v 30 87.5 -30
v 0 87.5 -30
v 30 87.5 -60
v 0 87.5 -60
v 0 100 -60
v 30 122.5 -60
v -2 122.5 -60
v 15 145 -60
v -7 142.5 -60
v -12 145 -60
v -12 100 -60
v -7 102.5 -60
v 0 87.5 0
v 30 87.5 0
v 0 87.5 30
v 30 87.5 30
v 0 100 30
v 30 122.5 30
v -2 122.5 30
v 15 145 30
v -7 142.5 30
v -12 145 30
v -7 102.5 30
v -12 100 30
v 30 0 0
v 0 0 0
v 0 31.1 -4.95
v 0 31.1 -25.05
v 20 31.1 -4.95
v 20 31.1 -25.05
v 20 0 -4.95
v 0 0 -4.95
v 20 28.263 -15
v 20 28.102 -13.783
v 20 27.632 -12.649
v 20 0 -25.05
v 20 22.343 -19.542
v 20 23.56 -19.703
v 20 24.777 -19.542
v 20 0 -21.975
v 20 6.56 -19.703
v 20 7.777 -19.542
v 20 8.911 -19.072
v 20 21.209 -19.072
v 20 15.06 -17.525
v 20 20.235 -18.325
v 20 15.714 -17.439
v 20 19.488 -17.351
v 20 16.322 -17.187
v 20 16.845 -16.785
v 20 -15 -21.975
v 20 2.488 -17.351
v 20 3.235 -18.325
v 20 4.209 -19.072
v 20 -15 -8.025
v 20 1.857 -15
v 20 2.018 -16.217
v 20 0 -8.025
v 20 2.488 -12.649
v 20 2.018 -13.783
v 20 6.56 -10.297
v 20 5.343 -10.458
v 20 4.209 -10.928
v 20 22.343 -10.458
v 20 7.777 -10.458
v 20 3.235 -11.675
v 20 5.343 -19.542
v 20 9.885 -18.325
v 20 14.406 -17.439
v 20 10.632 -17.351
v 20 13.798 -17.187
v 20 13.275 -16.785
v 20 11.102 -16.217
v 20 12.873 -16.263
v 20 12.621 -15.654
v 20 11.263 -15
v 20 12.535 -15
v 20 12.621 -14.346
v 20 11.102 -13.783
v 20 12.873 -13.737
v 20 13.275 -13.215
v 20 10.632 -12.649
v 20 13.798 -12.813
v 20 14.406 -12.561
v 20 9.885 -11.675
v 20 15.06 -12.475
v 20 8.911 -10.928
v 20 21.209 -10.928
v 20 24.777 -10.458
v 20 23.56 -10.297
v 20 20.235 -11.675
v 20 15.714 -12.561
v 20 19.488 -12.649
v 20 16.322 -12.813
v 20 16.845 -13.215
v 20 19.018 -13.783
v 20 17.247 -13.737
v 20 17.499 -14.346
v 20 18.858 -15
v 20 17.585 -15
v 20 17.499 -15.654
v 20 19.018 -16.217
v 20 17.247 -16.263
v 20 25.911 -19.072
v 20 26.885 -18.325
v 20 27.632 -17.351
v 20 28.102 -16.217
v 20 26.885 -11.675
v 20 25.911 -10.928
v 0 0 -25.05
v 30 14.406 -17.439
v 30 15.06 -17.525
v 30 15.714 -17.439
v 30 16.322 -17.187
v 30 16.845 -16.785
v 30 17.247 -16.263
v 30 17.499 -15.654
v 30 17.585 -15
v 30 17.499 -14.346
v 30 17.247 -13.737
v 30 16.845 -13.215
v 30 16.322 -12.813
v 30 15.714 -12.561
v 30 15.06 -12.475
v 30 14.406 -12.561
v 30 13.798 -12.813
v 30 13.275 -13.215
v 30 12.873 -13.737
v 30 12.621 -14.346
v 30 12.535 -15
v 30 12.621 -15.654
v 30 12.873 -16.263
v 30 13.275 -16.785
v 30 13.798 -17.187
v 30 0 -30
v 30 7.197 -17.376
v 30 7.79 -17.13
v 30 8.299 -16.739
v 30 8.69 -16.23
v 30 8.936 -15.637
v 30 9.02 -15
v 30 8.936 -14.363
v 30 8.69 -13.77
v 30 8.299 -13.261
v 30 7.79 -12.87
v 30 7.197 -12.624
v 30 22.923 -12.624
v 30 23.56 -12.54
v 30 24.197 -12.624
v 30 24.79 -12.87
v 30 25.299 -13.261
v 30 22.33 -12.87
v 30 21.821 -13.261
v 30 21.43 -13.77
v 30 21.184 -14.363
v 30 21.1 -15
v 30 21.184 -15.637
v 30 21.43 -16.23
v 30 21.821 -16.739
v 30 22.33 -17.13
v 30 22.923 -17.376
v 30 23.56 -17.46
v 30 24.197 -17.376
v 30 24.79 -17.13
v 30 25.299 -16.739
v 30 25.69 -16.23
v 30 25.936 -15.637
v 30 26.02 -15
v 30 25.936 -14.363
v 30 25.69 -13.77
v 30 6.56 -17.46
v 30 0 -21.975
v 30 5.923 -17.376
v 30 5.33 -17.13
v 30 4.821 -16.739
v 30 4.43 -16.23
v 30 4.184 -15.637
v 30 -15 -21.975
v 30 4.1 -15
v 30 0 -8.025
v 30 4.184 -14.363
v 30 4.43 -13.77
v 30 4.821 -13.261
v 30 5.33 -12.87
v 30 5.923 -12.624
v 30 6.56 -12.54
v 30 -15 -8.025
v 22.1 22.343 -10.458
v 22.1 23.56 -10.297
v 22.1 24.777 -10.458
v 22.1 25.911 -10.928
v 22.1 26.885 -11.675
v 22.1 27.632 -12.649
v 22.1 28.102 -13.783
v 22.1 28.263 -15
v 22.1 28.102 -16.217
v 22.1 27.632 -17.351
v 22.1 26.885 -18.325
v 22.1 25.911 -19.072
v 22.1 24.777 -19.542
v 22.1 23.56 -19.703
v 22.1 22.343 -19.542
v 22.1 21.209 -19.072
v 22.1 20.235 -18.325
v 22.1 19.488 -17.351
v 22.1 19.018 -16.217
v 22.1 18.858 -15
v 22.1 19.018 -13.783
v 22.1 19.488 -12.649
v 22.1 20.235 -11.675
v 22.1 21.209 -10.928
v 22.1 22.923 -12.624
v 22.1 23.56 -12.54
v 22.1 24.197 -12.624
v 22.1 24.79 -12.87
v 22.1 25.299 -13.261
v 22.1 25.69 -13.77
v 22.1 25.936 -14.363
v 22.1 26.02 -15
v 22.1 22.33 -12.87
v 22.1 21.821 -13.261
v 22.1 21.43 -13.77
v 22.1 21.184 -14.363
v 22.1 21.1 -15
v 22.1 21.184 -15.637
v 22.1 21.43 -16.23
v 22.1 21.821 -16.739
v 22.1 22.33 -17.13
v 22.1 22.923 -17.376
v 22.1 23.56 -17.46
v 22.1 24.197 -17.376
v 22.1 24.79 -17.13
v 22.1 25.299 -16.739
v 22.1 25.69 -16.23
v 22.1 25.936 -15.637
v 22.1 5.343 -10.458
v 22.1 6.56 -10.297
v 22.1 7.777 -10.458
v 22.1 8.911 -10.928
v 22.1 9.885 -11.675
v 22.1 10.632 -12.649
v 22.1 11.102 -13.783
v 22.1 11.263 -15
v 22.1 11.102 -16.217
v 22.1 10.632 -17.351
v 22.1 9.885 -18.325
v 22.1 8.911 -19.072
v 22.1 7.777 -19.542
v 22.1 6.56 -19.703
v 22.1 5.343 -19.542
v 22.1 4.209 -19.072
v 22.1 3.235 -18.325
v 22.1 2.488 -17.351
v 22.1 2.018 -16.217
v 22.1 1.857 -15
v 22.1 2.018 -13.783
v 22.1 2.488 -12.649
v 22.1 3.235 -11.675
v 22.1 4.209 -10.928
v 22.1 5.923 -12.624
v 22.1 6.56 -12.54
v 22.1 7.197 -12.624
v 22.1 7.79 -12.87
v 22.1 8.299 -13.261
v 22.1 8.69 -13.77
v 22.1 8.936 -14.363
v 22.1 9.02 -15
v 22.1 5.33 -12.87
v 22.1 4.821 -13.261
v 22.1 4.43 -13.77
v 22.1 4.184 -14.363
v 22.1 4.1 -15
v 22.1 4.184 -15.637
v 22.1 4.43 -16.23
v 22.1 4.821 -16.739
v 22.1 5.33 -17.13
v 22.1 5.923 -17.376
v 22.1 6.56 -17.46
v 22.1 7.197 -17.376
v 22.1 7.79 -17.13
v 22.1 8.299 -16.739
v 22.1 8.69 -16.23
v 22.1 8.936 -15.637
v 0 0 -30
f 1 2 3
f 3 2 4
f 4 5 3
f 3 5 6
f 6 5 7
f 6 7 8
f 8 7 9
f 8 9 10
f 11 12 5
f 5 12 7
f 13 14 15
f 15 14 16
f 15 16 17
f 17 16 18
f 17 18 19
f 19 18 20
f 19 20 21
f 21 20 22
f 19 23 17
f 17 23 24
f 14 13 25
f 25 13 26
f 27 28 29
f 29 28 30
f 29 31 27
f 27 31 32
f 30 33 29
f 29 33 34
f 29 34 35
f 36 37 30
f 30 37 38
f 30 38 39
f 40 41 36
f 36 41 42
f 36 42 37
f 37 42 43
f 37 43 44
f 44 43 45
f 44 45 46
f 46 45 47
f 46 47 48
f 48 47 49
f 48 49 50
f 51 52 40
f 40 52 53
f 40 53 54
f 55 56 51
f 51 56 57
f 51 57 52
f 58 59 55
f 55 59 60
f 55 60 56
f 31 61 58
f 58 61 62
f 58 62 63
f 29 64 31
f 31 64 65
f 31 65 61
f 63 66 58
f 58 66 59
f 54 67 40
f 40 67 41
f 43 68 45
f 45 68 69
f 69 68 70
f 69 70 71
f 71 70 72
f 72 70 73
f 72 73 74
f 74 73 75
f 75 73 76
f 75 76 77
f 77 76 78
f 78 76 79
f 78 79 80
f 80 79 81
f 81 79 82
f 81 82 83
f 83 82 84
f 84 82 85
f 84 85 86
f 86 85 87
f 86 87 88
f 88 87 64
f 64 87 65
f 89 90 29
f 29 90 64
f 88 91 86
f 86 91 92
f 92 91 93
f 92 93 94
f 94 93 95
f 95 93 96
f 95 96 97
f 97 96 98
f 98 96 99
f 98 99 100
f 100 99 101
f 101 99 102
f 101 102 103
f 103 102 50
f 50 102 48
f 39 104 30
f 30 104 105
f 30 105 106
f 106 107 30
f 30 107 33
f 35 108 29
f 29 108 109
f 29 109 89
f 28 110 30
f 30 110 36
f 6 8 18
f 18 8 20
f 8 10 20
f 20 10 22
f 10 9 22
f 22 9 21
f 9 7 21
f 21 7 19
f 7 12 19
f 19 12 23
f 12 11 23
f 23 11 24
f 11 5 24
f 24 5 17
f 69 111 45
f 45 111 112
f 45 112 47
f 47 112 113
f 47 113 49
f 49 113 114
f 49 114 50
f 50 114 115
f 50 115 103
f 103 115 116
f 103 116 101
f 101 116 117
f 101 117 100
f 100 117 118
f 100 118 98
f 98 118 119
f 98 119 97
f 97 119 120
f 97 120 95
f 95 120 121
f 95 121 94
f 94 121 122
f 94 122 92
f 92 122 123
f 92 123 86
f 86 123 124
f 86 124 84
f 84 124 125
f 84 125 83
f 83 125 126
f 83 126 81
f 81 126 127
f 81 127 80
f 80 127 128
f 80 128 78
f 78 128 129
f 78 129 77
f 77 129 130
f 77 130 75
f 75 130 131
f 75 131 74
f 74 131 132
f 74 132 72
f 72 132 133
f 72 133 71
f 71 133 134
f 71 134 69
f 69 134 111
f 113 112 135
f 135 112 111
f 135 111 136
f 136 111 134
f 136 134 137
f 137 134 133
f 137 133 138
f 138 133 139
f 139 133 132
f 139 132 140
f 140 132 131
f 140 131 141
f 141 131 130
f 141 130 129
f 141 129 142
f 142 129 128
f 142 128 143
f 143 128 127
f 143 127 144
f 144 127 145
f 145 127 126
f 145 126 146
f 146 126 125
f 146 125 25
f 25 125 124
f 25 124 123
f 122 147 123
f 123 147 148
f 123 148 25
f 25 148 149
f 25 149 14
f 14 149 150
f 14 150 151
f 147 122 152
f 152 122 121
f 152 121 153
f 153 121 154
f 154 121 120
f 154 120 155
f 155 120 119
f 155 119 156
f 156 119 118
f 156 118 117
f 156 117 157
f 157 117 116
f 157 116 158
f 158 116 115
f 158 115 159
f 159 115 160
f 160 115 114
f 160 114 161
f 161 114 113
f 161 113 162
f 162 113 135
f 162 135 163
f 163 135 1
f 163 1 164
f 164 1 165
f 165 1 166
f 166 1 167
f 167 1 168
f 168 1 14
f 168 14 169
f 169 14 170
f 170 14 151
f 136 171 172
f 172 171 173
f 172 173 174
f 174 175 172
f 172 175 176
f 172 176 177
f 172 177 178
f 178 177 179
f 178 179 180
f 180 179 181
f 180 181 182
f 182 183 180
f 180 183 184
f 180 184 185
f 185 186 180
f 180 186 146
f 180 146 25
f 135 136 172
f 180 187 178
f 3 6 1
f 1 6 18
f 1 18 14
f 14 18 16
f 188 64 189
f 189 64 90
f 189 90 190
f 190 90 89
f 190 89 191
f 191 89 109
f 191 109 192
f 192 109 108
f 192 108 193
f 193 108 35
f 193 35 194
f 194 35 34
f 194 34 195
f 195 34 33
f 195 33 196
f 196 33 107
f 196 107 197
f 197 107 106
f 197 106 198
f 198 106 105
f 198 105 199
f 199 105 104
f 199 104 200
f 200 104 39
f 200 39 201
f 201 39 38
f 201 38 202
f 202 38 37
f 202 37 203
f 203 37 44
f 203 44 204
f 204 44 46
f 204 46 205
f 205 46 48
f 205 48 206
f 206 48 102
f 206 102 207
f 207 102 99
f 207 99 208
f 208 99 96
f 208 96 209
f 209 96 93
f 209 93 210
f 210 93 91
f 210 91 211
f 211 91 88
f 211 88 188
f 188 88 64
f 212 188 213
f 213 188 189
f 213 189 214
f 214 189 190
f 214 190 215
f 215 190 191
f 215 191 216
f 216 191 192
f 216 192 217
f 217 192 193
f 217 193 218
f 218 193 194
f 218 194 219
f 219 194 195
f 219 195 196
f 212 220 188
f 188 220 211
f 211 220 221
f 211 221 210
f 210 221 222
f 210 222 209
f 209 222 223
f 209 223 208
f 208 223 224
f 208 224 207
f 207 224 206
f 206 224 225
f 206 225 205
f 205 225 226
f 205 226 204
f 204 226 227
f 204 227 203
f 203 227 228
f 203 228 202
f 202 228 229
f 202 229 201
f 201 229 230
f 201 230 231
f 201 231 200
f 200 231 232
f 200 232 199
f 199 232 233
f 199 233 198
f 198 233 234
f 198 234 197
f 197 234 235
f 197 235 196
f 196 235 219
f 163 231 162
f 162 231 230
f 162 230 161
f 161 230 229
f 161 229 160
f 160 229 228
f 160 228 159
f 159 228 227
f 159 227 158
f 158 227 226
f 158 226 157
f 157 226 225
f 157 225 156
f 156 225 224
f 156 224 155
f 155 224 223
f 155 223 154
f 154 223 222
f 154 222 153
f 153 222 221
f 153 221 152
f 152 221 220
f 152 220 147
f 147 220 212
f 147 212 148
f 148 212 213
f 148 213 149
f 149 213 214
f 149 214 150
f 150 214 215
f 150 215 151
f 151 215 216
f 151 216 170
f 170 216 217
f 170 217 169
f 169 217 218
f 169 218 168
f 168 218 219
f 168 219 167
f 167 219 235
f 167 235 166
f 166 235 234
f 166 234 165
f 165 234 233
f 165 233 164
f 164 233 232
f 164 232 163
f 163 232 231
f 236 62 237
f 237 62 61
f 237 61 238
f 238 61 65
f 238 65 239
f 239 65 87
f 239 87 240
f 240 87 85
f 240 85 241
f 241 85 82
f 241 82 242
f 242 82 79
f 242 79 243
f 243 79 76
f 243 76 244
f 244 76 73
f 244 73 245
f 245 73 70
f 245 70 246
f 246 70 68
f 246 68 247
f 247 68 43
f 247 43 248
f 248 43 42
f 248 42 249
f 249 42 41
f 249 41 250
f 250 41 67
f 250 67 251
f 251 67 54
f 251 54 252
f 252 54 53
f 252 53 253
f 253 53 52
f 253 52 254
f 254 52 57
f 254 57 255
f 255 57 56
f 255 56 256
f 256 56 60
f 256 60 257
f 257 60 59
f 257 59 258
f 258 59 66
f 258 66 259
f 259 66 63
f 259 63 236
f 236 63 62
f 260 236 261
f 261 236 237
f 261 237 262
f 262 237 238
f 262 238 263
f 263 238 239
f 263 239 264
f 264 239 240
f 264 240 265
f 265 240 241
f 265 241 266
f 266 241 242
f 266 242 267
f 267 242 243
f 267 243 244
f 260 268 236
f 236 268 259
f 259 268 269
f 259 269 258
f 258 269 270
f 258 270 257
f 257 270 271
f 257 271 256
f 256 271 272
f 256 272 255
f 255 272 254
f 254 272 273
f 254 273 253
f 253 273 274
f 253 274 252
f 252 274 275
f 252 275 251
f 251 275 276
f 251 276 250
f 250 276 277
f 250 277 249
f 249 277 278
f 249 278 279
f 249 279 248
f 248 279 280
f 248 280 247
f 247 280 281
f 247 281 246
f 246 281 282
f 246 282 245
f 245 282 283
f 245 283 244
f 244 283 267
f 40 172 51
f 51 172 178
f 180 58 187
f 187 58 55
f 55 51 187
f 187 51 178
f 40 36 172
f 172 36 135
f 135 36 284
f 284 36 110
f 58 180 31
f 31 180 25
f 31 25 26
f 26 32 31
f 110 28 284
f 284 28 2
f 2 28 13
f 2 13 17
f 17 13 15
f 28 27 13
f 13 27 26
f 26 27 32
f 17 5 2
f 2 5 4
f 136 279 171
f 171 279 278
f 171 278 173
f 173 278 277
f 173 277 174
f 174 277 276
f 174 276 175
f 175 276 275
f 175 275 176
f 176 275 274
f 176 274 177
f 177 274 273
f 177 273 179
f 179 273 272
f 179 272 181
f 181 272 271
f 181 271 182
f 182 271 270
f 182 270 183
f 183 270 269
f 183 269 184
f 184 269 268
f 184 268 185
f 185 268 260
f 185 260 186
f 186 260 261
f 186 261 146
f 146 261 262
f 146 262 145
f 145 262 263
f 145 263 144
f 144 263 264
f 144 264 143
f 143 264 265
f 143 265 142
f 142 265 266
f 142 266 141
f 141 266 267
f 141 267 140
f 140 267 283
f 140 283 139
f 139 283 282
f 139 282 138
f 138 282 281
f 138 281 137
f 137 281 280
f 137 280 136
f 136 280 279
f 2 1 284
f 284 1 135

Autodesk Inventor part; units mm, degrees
ref_plane "YZ Plane" through (0, 0, 0) normal (1, 0, 0) x (0, 1, 0)
ref_plane "XZ Plane" through (0, 0, 0) normal (0, 1, 0) x (-1, 0, 0)
sketch "Sketch1" plane through (0, 0, 0) normal (0, 0, 1) x (1, 0, 0)
  line L0 (0, 0) -> (25, 0)
  line L1 (25, 0) -> (25, 40)
  line L2 (25, 40) -> (0, 40)
  line L3 (0, 40) -> (0, 0)
  dimension "d1" = 25
  dimension "d2" = 40
  dimension "d3" = 25
extrude "Extrusion1" add sketch "Sketch1" against normal blind 30
sketch "Sketch2" plane through (25, 0, 0) normal (1, 0, 0) x (0, 0, -1)
  line L0 (0, 0) -> (30, 0) projected
  circle A0 centre (15, 6.56) radius 2.46
extrude "Extrusion2" cut sketch "Sketch2" against normal blind 30
sketch "Sketch3" plane through (0, 0, 0) normal (-1, 0, 0) x (0, 0, 1)
  line L0 (0, 0) -> (-30, 0) projected
  line L1 (-25.05, 0) -> (-4.95, 0)
  line L2 (-4.95, 0) -> (-4.95, 33.12)
  line L3 (-4.95, 33.12) -> (-25.05, 33.12)
  line L4 (-25.05, 33.12) -> (-25.05, 0)
  dimension "d11" = 20.1
extrude "Extrusion3" cut sketch "Sketch3" against normal blind 20
sketch "Sketch4" plane through (0, 0, 0) normal (0, -1, 0) x (1, 0, 0)
  line L0 (20, -4.95) -> (20, -25.05) projected
  line L1 (20, -15) -> (25, -15)
  line L2 (25, 0) -> (25, -30) projected
  line L3 (20, -8.025) -> (25, -8.025)
  line L4 (25, -8.025) -> (25, -21.975)
  line L5 (25, -21.975) -> (20, -21.975)
  line L6 (20, -21.975) -> (20, -8.025)
  line L7 (20, -8.025) -> (25, -21.975) construction
  line L8 (25, -8.025) -> (20, -21.975) construction
  line L9 (25, -12.54) -> (25, -17.46) projected
  point P0 (0, 0)
  point P1 (22.5, -15)
  dimension "d14" = 13.95
extrude "Extrusion4" add sketch "Sketch4" along normal blind 15
sketch "Sketch5" plane through (20, 0, 0) normal (-1, 0, 0) x (0, 0, 1)
  circle A0 centre (-15, 6.56) radius 2.46 projected
  circle A1 centre (-15, 6.56) radius 4.7025
  circle A2 centre (-15, 6.56) radius 2.46 projected
  circle A3 centre (-15, 6.56) radius 2.46
  point P0 (0, 0)
  dimension "d17" = 9.405
extrude "Extrusion5" cut sketch "Sketch5" against normal blind 2.1
sketch "Sketch6" plane through (25, 0, 0) normal (1, 0, 0) x (0, 0, -1)
  circle A0 centre (15, 6.56) radius 4.7025 projected
  line L0 (15, 6.56) -> (15, 23.56)
  circle A1 centre (15, 23.56) radius 2.46
  point P0 (0, 0)
  dimension "d20" = 17
  dimension "d21" = 4.92
extrude "Extrusion6" cut sketch "Sketch6" against normal blind 10 contours A1
sketch "Sketch7" plane through (20, 0, 0) normal (-1, 0, 0) x (0, 0, 1)
  circle A0 centre (-15, 23.56) radius 2.46 projected
  circle A1 centre (-15, 23.56) radius 4.7025
  point P0 (0, 0)
  dimension "d24" = 9.405
extrude "Extrusion7" cut sketch "Sketch7" against normal blind 2.1
sketch "Sketch9" plane through (25, 0, 0) normal (1, 0, 0) x (0, 0, -1)
  circle A0 centre (15, 6.56) radius 2.46 projected
  circle A1 centre (15, 6.56) radius 2.46
  circle A2 centre (15, 23.56) radius 2.46 projected
  circle A3 centre (15, 23.56) radius 2.46
  line L0 (30, 40) -> (30, 0) projected
  line L1 (30, 0) -> (30, 40)
  line L2 (30, 40) -> (0, 40)
  line L3 (0, 40) -> (0, 0)
  line L4 (0, 0) -> (8.025, 0) projected
  line L5 (21.975, 0) -> (21.975, -15)
  line L6 (21.975, -15) -> (8.025, -15)
  line L7 (8.025, -15) -> (8.025, 0)
  line L8 (0, 0) -> (8.025, 0)
  line L9 (21.975, 0) -> (30, 0)
extrude "Extrusion8" add sketch "Sketch9" along normal blind 5
sketch "Sketch10" plane through (0, 40, 0) normal (0, 1, 0) x (1, 0, 0)
  line L0 (0, 30) -> (30, 30) projected
  line L1 (30, 0) -> (0, 0) projected
  line L2 (0, 30) -> (30, 30)
  line L3 (30, 30) -> (30, 0)
  line L4 (30, 0) -> (0, 0)
  line L5 (0, 0) -> (0, 30)
extrude "Extrusion9" add sketch "Sketch10" along normal blind 30
sketch "Sketch12" plane through (30, 0, 0) normal (1, 0, 0) x (0, 0, -1)
  circle A0 centre (15, 6.56) radius 2.46 projected
  line L0 (15, 6.56) -> (15, 15.06)
  circle A1 centre (15, 15.06) radius 2.525
  point P0 (0, 0)
  dimension "d31" = 8.5
  dimension "d33" = 5.05
extrude "Extrusion10" cut sketch "Sketch12" against normal blind 30 contours A1
sketch "Sketch14" plane through (0, 0, 0) normal (0, 0, 1) x (1, 0, 0)
  line L0 (30, 70) -> (0, 70) projected
  line L1 (0, 70) -> (0, 100)
  line L2 (30, 0) -> (30, 70) projected
  line L3 (30, 122.5) -> (30, 70)
  line L4 (30, 105) -> (30, 100)
  line L5 (-12, 145) -> (15, 145)
  line L6 (-7, 142.5) -> (-12, 145)
  line L7 (-7, 102.5) -> (-12, 100)
  line L8 (-7, 102.5) -> (-2, 122.5)
  line L9 (-2, 122.5) -> (-7, 142.5)
  line L10 (30, 122.5) -> (15, 145)
  line L11 (0, 100) -> (-12, 100)
  point P0 (0, 0)
  dimension "d86" = 12
extrude "Extrusion12" add sketch "Sketch14" against normal blind 30
sketch "Sketch15" plane through (0, 0, -25.05) normal (-1, 0, 0) x (0, 0, 1)
  line L0 (0, 33.12) -> (20.1, 33.12) projected
  line L1 (20.1, 33.12) -> (20.1, 0) projected
  line L2 (0, 33.12) -> (20.1, 33.12)
  line L3 (20.1, 33.12) -> (20.1, 31.1)
  line L4 (20.1, 31.1) -> (0, 31.1)
  line L5 (0, 31.1) -> (0, 33.12)
  point P0 (25.05, 0)
  dimension "d57" = 2.02
extrude "Extrusion13" add sketch "Sketch15" against normal blind 20
sketch "Sketch24" plane through (0, 0, 0) normal (0, 0, 1) x (1, 0, 0)
  line L0 (0, 100) -> (-12, 100) projected
  line L1 (-12, 100) -> (-7, 102.5) projected
  line L2 (0, 100) -> (-12, 100)
  line L3 (-12, 100) -> (-7, 102.5)
  line L4 (-7, 102.5) -> (-2, 122.5) projected
  line L5 (-7, 102.5) -> (-2, 122.5)
  line L6 (-2, 122.5) -> (-7, 142.5) projected
  line L7 (-2, 122.5) -> (-7, 142.5)
  line L8 (-7, 142.5) -> (-12, 145) projected
  line L9 (-7, 142.5) -> (-12, 145)
  line L10 (-12, 145) -> (15, 145) projected
  line L11 (-12, 145) -> (15, 145)
  line L12 (15, 145) -> (30, 122.5) projected
  line L13 (15, 145) -> (30, 122.5)
  line L14 (30, 122.5) -> (30, 87.5)
  line L15 (30, 87.5) -> (0, 87.5)
  line L16 (0, 87.5) -> (0, 100)
  point P0 (0, 0)
  dimension "d87" = 35
  dimension "d88" = 30
extrude "Extrusion14" add sketch "Sketch24" along normal blind 30
ref_plane "Work Plane1" through (0, 0, -15) normal (0, 0, 1) x (1, 0, 0)
mirror "Mirror1" about plane through (0, 0, -15) normal (0, 0, 1) of "Extrusion14"
properties part number "rec_b_40mm_x_90mm"
